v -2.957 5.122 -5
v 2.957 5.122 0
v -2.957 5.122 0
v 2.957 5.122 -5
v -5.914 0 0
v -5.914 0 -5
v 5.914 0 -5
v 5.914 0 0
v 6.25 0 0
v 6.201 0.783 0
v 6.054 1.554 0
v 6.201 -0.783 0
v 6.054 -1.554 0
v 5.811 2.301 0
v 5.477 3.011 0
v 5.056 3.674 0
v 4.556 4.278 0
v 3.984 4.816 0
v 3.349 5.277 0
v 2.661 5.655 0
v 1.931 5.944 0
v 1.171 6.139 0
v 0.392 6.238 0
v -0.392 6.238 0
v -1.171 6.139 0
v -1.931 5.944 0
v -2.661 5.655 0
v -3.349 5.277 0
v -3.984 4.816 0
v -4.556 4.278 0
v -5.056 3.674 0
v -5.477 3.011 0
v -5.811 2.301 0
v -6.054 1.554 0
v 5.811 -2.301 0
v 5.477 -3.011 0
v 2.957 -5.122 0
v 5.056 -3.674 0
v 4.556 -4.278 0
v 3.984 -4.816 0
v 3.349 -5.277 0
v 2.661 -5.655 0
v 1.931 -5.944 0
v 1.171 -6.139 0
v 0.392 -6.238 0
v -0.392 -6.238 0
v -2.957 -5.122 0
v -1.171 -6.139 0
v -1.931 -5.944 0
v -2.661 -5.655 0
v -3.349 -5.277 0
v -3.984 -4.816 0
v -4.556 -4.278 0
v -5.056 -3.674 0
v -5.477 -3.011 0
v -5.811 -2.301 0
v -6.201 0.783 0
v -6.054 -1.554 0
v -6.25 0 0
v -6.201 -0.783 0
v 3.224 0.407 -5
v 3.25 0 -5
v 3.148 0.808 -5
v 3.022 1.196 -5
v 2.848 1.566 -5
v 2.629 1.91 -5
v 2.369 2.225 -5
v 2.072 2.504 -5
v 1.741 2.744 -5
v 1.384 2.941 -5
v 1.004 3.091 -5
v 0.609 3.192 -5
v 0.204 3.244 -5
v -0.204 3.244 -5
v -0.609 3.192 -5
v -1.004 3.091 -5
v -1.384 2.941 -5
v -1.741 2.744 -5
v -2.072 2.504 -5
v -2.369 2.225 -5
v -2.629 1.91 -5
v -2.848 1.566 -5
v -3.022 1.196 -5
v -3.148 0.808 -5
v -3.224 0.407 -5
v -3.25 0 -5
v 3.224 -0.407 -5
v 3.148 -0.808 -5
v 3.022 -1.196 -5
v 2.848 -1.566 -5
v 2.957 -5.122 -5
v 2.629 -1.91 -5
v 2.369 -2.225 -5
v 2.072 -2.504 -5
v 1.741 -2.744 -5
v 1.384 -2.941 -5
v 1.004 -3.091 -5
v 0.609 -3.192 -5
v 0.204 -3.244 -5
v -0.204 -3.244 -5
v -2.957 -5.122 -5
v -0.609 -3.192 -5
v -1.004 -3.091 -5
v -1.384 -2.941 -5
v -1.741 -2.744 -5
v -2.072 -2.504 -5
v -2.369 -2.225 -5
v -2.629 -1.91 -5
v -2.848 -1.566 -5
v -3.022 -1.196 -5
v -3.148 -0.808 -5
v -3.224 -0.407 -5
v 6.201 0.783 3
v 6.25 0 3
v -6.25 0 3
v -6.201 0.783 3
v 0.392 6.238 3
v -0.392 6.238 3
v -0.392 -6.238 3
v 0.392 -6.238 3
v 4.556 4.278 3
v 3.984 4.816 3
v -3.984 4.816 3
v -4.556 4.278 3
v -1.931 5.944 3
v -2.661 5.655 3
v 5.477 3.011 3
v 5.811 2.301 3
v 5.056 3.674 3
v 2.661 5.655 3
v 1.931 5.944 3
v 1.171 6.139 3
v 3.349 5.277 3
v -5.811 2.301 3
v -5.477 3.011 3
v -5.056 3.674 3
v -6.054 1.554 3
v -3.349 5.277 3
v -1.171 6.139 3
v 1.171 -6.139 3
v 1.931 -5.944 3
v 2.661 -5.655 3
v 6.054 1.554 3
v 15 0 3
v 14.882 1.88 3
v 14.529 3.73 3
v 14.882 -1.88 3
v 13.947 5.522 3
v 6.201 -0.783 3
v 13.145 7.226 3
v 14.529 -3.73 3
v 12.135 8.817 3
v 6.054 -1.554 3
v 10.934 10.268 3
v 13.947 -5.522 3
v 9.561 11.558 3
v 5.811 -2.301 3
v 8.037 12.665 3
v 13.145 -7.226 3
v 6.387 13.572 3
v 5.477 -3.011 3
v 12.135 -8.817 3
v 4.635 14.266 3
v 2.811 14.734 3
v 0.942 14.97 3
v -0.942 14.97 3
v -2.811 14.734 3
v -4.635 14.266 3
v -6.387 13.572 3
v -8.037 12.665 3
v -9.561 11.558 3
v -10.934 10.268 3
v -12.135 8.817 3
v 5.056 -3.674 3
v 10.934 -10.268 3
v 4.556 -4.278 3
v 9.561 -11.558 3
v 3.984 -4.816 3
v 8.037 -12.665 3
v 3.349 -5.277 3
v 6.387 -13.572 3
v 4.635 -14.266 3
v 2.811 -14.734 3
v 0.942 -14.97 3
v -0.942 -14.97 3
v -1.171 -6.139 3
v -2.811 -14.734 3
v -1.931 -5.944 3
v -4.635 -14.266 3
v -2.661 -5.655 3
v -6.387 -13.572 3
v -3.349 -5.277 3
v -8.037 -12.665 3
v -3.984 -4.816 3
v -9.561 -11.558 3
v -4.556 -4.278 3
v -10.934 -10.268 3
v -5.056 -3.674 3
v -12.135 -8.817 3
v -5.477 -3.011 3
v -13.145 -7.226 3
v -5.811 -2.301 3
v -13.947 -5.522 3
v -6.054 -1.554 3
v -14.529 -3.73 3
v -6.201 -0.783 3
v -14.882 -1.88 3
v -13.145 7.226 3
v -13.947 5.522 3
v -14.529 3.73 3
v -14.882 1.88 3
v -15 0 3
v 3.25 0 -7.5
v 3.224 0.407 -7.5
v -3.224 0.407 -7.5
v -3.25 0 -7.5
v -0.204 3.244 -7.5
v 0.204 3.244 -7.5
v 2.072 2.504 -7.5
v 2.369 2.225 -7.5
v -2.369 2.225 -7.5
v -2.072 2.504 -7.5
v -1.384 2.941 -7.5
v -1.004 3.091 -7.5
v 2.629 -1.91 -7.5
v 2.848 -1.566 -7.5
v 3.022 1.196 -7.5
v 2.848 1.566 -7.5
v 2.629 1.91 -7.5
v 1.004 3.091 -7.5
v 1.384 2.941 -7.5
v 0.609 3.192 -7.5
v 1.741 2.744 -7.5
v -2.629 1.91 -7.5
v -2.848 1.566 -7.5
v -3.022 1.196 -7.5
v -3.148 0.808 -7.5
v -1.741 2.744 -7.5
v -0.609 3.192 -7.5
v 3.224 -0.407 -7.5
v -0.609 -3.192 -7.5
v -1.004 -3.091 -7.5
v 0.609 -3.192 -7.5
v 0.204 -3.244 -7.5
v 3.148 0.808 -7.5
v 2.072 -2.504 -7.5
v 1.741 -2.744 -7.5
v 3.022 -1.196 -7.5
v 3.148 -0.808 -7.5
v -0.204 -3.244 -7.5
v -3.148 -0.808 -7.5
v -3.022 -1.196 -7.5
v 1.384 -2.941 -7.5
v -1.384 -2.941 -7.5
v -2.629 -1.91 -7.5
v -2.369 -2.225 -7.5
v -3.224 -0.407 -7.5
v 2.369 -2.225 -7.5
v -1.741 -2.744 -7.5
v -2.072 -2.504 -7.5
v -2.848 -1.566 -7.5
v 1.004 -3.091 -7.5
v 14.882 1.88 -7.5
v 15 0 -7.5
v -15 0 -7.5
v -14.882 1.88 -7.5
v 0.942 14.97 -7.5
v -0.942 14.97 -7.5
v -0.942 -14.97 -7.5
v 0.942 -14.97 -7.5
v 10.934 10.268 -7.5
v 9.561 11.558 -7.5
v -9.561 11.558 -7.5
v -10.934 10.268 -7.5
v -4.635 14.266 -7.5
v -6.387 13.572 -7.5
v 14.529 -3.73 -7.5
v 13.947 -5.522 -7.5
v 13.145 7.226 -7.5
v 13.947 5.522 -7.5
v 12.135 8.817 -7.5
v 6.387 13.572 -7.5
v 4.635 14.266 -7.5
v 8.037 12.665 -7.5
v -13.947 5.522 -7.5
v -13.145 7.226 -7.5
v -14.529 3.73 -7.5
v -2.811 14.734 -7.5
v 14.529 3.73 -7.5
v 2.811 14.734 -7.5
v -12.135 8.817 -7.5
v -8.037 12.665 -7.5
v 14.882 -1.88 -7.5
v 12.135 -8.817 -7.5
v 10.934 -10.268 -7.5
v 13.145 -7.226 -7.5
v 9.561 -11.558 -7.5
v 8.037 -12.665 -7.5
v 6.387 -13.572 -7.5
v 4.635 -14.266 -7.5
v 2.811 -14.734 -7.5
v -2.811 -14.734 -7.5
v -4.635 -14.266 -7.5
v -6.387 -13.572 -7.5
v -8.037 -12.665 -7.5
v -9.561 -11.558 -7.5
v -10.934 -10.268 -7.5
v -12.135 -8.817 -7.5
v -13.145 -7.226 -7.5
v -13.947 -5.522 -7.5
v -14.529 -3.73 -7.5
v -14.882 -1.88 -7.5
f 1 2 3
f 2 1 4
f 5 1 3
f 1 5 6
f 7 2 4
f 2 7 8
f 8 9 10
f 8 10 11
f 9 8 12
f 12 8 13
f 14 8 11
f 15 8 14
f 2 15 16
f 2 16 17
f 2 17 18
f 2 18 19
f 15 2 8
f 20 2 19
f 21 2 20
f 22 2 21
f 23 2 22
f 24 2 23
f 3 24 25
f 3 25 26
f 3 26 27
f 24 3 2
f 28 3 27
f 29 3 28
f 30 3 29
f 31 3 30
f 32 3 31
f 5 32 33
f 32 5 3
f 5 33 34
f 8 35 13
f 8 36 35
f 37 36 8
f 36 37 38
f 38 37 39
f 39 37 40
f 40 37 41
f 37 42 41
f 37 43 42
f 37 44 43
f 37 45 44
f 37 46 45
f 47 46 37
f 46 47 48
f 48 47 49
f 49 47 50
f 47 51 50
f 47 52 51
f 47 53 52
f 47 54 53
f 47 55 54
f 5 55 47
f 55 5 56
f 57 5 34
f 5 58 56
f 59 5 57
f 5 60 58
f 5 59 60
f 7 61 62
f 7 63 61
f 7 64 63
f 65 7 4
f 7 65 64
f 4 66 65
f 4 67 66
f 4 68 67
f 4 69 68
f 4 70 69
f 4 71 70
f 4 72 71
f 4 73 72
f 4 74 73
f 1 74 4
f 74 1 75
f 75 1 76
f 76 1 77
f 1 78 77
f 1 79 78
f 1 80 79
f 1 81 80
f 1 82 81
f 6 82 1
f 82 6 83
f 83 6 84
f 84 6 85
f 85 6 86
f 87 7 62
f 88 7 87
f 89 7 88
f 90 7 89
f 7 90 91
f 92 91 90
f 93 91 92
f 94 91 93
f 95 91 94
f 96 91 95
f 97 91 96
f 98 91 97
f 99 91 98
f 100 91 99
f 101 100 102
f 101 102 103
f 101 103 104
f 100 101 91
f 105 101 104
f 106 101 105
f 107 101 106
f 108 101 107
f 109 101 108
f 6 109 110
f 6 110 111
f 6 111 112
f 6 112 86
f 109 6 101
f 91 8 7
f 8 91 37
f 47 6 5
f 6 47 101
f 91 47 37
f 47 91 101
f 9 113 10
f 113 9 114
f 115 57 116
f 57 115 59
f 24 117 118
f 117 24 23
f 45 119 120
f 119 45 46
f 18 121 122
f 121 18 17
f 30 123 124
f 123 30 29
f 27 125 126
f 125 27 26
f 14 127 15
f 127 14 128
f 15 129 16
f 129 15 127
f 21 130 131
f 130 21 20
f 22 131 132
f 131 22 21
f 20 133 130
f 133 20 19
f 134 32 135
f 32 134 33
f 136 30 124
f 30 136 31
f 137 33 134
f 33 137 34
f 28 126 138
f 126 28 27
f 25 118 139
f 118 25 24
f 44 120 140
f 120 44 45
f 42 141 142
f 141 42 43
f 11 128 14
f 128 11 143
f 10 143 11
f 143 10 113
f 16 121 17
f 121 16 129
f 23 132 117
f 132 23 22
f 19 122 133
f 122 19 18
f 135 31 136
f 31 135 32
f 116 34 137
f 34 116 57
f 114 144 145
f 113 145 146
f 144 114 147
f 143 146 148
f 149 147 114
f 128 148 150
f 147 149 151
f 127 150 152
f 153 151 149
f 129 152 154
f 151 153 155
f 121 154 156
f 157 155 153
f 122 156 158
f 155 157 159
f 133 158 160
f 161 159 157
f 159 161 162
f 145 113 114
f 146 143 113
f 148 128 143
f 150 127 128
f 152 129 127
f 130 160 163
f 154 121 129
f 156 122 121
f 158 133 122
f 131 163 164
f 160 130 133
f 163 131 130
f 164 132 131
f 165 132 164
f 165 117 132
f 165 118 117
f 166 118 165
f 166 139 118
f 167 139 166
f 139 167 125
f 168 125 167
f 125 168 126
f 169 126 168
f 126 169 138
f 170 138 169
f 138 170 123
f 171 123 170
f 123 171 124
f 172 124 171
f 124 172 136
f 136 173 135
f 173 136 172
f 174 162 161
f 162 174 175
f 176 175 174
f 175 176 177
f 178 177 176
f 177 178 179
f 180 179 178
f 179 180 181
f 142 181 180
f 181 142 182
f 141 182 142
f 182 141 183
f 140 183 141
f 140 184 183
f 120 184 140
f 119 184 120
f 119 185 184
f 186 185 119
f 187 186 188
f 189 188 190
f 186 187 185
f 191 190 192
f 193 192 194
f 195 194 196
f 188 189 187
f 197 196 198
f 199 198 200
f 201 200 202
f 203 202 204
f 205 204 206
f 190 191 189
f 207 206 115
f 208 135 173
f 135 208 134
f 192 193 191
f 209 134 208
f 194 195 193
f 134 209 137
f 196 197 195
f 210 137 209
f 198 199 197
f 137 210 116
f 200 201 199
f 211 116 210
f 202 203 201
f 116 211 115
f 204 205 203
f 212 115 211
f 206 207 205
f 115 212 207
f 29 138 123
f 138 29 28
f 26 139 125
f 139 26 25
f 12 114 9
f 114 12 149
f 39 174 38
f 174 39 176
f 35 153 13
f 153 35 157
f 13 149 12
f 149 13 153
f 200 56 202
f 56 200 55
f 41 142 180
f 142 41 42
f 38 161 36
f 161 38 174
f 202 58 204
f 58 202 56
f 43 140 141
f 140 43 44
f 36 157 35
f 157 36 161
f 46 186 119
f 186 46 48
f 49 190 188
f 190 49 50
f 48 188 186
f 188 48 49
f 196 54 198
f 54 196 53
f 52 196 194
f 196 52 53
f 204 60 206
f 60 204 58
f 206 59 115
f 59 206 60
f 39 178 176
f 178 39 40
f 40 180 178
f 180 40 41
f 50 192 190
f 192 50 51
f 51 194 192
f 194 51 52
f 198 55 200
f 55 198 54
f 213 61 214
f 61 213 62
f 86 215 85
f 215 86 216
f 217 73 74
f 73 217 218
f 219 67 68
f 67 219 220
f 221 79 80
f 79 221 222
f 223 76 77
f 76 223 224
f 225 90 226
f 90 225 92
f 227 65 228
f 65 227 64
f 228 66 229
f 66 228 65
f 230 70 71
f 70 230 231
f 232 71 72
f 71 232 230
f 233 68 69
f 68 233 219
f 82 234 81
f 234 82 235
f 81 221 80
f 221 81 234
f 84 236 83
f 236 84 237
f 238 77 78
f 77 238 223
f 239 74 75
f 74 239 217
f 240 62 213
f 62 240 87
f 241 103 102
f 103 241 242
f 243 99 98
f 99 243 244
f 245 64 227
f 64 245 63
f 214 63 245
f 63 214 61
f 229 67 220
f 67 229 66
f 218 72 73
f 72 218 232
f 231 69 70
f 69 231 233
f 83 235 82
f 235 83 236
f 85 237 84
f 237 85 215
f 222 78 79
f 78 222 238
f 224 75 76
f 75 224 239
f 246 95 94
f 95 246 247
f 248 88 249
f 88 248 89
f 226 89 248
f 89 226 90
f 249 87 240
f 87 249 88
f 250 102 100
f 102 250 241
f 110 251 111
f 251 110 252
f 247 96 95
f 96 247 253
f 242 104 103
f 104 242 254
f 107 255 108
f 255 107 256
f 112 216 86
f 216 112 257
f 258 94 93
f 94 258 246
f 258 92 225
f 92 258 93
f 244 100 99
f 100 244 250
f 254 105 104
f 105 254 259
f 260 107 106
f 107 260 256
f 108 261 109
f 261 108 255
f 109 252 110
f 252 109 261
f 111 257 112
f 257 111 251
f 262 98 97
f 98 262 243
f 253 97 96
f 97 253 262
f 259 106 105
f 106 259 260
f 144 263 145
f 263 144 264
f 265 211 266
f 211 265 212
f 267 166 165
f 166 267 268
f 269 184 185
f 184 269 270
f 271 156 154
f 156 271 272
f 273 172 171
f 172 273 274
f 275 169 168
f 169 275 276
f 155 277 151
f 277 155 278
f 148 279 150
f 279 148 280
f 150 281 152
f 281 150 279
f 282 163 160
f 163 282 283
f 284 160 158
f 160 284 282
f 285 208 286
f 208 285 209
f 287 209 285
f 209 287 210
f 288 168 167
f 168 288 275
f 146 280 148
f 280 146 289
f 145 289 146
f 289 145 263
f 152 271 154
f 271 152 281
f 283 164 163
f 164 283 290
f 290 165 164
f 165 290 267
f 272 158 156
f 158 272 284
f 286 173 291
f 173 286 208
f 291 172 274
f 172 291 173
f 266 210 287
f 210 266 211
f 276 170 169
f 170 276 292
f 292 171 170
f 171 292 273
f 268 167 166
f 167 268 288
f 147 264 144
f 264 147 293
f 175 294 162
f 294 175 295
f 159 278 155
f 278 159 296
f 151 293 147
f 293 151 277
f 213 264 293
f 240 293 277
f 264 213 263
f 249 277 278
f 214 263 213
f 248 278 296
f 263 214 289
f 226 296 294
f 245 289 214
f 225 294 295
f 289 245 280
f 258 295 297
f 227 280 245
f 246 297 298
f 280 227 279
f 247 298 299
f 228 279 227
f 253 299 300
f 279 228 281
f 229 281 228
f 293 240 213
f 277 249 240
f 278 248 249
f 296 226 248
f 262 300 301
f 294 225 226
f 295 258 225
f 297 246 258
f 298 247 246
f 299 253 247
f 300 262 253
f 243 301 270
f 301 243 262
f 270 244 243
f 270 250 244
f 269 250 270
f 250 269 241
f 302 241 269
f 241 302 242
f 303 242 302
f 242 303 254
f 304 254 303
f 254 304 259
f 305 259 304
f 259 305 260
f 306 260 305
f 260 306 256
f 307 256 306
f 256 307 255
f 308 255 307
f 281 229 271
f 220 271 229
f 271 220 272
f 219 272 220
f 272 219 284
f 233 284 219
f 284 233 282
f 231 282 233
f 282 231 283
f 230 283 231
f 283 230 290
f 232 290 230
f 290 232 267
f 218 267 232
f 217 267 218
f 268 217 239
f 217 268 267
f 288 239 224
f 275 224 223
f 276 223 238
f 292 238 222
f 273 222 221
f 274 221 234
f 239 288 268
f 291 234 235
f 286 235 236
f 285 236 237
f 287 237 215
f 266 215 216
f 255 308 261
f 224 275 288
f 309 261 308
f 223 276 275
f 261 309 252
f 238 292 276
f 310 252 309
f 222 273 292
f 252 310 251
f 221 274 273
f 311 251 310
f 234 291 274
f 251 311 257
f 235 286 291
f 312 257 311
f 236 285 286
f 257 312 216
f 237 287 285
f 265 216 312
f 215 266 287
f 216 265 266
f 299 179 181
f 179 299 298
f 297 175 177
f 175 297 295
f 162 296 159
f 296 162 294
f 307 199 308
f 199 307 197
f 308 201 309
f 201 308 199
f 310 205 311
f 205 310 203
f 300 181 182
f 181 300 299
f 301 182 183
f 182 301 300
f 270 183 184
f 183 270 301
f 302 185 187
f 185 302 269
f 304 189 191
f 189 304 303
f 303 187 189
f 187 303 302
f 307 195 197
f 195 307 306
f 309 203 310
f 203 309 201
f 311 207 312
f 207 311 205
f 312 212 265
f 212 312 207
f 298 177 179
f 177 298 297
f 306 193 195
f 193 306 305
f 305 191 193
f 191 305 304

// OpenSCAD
$fn = 50;

difference() {
	union() {
		translate(v = [0, 0, -7.5]) {
			cylinder(h = 10.5, r = 15.0);
		}
	}
	union() {
		translate(v = [0, 0, 0]) {
			rotate(a = [0, 0, 0]) {
				difference() {
					union() {
						translate(v = [0, 0, -5]) {
							linear_extrude(height = 5) {
								polygon(points = [[5.914249999999999, 0.0], [2.957125, 5.1218907443321156], [-2.9571249999999982, 5.1218907443321156], [-5.914249999999999, 7.242867331857232e-16], [-2.9571250000000022, -5.121890744332115], [2.9571249999999956, -5.121890744332118]]);
							}
						}
					}
					union();
				}
			}
		}
		#cylinder(h = 3, r = 6.25);
		#translate(v = [0, 0, -100.0]) {
			cylinder(h = 200, r = 3.25);
		}
	}
}
